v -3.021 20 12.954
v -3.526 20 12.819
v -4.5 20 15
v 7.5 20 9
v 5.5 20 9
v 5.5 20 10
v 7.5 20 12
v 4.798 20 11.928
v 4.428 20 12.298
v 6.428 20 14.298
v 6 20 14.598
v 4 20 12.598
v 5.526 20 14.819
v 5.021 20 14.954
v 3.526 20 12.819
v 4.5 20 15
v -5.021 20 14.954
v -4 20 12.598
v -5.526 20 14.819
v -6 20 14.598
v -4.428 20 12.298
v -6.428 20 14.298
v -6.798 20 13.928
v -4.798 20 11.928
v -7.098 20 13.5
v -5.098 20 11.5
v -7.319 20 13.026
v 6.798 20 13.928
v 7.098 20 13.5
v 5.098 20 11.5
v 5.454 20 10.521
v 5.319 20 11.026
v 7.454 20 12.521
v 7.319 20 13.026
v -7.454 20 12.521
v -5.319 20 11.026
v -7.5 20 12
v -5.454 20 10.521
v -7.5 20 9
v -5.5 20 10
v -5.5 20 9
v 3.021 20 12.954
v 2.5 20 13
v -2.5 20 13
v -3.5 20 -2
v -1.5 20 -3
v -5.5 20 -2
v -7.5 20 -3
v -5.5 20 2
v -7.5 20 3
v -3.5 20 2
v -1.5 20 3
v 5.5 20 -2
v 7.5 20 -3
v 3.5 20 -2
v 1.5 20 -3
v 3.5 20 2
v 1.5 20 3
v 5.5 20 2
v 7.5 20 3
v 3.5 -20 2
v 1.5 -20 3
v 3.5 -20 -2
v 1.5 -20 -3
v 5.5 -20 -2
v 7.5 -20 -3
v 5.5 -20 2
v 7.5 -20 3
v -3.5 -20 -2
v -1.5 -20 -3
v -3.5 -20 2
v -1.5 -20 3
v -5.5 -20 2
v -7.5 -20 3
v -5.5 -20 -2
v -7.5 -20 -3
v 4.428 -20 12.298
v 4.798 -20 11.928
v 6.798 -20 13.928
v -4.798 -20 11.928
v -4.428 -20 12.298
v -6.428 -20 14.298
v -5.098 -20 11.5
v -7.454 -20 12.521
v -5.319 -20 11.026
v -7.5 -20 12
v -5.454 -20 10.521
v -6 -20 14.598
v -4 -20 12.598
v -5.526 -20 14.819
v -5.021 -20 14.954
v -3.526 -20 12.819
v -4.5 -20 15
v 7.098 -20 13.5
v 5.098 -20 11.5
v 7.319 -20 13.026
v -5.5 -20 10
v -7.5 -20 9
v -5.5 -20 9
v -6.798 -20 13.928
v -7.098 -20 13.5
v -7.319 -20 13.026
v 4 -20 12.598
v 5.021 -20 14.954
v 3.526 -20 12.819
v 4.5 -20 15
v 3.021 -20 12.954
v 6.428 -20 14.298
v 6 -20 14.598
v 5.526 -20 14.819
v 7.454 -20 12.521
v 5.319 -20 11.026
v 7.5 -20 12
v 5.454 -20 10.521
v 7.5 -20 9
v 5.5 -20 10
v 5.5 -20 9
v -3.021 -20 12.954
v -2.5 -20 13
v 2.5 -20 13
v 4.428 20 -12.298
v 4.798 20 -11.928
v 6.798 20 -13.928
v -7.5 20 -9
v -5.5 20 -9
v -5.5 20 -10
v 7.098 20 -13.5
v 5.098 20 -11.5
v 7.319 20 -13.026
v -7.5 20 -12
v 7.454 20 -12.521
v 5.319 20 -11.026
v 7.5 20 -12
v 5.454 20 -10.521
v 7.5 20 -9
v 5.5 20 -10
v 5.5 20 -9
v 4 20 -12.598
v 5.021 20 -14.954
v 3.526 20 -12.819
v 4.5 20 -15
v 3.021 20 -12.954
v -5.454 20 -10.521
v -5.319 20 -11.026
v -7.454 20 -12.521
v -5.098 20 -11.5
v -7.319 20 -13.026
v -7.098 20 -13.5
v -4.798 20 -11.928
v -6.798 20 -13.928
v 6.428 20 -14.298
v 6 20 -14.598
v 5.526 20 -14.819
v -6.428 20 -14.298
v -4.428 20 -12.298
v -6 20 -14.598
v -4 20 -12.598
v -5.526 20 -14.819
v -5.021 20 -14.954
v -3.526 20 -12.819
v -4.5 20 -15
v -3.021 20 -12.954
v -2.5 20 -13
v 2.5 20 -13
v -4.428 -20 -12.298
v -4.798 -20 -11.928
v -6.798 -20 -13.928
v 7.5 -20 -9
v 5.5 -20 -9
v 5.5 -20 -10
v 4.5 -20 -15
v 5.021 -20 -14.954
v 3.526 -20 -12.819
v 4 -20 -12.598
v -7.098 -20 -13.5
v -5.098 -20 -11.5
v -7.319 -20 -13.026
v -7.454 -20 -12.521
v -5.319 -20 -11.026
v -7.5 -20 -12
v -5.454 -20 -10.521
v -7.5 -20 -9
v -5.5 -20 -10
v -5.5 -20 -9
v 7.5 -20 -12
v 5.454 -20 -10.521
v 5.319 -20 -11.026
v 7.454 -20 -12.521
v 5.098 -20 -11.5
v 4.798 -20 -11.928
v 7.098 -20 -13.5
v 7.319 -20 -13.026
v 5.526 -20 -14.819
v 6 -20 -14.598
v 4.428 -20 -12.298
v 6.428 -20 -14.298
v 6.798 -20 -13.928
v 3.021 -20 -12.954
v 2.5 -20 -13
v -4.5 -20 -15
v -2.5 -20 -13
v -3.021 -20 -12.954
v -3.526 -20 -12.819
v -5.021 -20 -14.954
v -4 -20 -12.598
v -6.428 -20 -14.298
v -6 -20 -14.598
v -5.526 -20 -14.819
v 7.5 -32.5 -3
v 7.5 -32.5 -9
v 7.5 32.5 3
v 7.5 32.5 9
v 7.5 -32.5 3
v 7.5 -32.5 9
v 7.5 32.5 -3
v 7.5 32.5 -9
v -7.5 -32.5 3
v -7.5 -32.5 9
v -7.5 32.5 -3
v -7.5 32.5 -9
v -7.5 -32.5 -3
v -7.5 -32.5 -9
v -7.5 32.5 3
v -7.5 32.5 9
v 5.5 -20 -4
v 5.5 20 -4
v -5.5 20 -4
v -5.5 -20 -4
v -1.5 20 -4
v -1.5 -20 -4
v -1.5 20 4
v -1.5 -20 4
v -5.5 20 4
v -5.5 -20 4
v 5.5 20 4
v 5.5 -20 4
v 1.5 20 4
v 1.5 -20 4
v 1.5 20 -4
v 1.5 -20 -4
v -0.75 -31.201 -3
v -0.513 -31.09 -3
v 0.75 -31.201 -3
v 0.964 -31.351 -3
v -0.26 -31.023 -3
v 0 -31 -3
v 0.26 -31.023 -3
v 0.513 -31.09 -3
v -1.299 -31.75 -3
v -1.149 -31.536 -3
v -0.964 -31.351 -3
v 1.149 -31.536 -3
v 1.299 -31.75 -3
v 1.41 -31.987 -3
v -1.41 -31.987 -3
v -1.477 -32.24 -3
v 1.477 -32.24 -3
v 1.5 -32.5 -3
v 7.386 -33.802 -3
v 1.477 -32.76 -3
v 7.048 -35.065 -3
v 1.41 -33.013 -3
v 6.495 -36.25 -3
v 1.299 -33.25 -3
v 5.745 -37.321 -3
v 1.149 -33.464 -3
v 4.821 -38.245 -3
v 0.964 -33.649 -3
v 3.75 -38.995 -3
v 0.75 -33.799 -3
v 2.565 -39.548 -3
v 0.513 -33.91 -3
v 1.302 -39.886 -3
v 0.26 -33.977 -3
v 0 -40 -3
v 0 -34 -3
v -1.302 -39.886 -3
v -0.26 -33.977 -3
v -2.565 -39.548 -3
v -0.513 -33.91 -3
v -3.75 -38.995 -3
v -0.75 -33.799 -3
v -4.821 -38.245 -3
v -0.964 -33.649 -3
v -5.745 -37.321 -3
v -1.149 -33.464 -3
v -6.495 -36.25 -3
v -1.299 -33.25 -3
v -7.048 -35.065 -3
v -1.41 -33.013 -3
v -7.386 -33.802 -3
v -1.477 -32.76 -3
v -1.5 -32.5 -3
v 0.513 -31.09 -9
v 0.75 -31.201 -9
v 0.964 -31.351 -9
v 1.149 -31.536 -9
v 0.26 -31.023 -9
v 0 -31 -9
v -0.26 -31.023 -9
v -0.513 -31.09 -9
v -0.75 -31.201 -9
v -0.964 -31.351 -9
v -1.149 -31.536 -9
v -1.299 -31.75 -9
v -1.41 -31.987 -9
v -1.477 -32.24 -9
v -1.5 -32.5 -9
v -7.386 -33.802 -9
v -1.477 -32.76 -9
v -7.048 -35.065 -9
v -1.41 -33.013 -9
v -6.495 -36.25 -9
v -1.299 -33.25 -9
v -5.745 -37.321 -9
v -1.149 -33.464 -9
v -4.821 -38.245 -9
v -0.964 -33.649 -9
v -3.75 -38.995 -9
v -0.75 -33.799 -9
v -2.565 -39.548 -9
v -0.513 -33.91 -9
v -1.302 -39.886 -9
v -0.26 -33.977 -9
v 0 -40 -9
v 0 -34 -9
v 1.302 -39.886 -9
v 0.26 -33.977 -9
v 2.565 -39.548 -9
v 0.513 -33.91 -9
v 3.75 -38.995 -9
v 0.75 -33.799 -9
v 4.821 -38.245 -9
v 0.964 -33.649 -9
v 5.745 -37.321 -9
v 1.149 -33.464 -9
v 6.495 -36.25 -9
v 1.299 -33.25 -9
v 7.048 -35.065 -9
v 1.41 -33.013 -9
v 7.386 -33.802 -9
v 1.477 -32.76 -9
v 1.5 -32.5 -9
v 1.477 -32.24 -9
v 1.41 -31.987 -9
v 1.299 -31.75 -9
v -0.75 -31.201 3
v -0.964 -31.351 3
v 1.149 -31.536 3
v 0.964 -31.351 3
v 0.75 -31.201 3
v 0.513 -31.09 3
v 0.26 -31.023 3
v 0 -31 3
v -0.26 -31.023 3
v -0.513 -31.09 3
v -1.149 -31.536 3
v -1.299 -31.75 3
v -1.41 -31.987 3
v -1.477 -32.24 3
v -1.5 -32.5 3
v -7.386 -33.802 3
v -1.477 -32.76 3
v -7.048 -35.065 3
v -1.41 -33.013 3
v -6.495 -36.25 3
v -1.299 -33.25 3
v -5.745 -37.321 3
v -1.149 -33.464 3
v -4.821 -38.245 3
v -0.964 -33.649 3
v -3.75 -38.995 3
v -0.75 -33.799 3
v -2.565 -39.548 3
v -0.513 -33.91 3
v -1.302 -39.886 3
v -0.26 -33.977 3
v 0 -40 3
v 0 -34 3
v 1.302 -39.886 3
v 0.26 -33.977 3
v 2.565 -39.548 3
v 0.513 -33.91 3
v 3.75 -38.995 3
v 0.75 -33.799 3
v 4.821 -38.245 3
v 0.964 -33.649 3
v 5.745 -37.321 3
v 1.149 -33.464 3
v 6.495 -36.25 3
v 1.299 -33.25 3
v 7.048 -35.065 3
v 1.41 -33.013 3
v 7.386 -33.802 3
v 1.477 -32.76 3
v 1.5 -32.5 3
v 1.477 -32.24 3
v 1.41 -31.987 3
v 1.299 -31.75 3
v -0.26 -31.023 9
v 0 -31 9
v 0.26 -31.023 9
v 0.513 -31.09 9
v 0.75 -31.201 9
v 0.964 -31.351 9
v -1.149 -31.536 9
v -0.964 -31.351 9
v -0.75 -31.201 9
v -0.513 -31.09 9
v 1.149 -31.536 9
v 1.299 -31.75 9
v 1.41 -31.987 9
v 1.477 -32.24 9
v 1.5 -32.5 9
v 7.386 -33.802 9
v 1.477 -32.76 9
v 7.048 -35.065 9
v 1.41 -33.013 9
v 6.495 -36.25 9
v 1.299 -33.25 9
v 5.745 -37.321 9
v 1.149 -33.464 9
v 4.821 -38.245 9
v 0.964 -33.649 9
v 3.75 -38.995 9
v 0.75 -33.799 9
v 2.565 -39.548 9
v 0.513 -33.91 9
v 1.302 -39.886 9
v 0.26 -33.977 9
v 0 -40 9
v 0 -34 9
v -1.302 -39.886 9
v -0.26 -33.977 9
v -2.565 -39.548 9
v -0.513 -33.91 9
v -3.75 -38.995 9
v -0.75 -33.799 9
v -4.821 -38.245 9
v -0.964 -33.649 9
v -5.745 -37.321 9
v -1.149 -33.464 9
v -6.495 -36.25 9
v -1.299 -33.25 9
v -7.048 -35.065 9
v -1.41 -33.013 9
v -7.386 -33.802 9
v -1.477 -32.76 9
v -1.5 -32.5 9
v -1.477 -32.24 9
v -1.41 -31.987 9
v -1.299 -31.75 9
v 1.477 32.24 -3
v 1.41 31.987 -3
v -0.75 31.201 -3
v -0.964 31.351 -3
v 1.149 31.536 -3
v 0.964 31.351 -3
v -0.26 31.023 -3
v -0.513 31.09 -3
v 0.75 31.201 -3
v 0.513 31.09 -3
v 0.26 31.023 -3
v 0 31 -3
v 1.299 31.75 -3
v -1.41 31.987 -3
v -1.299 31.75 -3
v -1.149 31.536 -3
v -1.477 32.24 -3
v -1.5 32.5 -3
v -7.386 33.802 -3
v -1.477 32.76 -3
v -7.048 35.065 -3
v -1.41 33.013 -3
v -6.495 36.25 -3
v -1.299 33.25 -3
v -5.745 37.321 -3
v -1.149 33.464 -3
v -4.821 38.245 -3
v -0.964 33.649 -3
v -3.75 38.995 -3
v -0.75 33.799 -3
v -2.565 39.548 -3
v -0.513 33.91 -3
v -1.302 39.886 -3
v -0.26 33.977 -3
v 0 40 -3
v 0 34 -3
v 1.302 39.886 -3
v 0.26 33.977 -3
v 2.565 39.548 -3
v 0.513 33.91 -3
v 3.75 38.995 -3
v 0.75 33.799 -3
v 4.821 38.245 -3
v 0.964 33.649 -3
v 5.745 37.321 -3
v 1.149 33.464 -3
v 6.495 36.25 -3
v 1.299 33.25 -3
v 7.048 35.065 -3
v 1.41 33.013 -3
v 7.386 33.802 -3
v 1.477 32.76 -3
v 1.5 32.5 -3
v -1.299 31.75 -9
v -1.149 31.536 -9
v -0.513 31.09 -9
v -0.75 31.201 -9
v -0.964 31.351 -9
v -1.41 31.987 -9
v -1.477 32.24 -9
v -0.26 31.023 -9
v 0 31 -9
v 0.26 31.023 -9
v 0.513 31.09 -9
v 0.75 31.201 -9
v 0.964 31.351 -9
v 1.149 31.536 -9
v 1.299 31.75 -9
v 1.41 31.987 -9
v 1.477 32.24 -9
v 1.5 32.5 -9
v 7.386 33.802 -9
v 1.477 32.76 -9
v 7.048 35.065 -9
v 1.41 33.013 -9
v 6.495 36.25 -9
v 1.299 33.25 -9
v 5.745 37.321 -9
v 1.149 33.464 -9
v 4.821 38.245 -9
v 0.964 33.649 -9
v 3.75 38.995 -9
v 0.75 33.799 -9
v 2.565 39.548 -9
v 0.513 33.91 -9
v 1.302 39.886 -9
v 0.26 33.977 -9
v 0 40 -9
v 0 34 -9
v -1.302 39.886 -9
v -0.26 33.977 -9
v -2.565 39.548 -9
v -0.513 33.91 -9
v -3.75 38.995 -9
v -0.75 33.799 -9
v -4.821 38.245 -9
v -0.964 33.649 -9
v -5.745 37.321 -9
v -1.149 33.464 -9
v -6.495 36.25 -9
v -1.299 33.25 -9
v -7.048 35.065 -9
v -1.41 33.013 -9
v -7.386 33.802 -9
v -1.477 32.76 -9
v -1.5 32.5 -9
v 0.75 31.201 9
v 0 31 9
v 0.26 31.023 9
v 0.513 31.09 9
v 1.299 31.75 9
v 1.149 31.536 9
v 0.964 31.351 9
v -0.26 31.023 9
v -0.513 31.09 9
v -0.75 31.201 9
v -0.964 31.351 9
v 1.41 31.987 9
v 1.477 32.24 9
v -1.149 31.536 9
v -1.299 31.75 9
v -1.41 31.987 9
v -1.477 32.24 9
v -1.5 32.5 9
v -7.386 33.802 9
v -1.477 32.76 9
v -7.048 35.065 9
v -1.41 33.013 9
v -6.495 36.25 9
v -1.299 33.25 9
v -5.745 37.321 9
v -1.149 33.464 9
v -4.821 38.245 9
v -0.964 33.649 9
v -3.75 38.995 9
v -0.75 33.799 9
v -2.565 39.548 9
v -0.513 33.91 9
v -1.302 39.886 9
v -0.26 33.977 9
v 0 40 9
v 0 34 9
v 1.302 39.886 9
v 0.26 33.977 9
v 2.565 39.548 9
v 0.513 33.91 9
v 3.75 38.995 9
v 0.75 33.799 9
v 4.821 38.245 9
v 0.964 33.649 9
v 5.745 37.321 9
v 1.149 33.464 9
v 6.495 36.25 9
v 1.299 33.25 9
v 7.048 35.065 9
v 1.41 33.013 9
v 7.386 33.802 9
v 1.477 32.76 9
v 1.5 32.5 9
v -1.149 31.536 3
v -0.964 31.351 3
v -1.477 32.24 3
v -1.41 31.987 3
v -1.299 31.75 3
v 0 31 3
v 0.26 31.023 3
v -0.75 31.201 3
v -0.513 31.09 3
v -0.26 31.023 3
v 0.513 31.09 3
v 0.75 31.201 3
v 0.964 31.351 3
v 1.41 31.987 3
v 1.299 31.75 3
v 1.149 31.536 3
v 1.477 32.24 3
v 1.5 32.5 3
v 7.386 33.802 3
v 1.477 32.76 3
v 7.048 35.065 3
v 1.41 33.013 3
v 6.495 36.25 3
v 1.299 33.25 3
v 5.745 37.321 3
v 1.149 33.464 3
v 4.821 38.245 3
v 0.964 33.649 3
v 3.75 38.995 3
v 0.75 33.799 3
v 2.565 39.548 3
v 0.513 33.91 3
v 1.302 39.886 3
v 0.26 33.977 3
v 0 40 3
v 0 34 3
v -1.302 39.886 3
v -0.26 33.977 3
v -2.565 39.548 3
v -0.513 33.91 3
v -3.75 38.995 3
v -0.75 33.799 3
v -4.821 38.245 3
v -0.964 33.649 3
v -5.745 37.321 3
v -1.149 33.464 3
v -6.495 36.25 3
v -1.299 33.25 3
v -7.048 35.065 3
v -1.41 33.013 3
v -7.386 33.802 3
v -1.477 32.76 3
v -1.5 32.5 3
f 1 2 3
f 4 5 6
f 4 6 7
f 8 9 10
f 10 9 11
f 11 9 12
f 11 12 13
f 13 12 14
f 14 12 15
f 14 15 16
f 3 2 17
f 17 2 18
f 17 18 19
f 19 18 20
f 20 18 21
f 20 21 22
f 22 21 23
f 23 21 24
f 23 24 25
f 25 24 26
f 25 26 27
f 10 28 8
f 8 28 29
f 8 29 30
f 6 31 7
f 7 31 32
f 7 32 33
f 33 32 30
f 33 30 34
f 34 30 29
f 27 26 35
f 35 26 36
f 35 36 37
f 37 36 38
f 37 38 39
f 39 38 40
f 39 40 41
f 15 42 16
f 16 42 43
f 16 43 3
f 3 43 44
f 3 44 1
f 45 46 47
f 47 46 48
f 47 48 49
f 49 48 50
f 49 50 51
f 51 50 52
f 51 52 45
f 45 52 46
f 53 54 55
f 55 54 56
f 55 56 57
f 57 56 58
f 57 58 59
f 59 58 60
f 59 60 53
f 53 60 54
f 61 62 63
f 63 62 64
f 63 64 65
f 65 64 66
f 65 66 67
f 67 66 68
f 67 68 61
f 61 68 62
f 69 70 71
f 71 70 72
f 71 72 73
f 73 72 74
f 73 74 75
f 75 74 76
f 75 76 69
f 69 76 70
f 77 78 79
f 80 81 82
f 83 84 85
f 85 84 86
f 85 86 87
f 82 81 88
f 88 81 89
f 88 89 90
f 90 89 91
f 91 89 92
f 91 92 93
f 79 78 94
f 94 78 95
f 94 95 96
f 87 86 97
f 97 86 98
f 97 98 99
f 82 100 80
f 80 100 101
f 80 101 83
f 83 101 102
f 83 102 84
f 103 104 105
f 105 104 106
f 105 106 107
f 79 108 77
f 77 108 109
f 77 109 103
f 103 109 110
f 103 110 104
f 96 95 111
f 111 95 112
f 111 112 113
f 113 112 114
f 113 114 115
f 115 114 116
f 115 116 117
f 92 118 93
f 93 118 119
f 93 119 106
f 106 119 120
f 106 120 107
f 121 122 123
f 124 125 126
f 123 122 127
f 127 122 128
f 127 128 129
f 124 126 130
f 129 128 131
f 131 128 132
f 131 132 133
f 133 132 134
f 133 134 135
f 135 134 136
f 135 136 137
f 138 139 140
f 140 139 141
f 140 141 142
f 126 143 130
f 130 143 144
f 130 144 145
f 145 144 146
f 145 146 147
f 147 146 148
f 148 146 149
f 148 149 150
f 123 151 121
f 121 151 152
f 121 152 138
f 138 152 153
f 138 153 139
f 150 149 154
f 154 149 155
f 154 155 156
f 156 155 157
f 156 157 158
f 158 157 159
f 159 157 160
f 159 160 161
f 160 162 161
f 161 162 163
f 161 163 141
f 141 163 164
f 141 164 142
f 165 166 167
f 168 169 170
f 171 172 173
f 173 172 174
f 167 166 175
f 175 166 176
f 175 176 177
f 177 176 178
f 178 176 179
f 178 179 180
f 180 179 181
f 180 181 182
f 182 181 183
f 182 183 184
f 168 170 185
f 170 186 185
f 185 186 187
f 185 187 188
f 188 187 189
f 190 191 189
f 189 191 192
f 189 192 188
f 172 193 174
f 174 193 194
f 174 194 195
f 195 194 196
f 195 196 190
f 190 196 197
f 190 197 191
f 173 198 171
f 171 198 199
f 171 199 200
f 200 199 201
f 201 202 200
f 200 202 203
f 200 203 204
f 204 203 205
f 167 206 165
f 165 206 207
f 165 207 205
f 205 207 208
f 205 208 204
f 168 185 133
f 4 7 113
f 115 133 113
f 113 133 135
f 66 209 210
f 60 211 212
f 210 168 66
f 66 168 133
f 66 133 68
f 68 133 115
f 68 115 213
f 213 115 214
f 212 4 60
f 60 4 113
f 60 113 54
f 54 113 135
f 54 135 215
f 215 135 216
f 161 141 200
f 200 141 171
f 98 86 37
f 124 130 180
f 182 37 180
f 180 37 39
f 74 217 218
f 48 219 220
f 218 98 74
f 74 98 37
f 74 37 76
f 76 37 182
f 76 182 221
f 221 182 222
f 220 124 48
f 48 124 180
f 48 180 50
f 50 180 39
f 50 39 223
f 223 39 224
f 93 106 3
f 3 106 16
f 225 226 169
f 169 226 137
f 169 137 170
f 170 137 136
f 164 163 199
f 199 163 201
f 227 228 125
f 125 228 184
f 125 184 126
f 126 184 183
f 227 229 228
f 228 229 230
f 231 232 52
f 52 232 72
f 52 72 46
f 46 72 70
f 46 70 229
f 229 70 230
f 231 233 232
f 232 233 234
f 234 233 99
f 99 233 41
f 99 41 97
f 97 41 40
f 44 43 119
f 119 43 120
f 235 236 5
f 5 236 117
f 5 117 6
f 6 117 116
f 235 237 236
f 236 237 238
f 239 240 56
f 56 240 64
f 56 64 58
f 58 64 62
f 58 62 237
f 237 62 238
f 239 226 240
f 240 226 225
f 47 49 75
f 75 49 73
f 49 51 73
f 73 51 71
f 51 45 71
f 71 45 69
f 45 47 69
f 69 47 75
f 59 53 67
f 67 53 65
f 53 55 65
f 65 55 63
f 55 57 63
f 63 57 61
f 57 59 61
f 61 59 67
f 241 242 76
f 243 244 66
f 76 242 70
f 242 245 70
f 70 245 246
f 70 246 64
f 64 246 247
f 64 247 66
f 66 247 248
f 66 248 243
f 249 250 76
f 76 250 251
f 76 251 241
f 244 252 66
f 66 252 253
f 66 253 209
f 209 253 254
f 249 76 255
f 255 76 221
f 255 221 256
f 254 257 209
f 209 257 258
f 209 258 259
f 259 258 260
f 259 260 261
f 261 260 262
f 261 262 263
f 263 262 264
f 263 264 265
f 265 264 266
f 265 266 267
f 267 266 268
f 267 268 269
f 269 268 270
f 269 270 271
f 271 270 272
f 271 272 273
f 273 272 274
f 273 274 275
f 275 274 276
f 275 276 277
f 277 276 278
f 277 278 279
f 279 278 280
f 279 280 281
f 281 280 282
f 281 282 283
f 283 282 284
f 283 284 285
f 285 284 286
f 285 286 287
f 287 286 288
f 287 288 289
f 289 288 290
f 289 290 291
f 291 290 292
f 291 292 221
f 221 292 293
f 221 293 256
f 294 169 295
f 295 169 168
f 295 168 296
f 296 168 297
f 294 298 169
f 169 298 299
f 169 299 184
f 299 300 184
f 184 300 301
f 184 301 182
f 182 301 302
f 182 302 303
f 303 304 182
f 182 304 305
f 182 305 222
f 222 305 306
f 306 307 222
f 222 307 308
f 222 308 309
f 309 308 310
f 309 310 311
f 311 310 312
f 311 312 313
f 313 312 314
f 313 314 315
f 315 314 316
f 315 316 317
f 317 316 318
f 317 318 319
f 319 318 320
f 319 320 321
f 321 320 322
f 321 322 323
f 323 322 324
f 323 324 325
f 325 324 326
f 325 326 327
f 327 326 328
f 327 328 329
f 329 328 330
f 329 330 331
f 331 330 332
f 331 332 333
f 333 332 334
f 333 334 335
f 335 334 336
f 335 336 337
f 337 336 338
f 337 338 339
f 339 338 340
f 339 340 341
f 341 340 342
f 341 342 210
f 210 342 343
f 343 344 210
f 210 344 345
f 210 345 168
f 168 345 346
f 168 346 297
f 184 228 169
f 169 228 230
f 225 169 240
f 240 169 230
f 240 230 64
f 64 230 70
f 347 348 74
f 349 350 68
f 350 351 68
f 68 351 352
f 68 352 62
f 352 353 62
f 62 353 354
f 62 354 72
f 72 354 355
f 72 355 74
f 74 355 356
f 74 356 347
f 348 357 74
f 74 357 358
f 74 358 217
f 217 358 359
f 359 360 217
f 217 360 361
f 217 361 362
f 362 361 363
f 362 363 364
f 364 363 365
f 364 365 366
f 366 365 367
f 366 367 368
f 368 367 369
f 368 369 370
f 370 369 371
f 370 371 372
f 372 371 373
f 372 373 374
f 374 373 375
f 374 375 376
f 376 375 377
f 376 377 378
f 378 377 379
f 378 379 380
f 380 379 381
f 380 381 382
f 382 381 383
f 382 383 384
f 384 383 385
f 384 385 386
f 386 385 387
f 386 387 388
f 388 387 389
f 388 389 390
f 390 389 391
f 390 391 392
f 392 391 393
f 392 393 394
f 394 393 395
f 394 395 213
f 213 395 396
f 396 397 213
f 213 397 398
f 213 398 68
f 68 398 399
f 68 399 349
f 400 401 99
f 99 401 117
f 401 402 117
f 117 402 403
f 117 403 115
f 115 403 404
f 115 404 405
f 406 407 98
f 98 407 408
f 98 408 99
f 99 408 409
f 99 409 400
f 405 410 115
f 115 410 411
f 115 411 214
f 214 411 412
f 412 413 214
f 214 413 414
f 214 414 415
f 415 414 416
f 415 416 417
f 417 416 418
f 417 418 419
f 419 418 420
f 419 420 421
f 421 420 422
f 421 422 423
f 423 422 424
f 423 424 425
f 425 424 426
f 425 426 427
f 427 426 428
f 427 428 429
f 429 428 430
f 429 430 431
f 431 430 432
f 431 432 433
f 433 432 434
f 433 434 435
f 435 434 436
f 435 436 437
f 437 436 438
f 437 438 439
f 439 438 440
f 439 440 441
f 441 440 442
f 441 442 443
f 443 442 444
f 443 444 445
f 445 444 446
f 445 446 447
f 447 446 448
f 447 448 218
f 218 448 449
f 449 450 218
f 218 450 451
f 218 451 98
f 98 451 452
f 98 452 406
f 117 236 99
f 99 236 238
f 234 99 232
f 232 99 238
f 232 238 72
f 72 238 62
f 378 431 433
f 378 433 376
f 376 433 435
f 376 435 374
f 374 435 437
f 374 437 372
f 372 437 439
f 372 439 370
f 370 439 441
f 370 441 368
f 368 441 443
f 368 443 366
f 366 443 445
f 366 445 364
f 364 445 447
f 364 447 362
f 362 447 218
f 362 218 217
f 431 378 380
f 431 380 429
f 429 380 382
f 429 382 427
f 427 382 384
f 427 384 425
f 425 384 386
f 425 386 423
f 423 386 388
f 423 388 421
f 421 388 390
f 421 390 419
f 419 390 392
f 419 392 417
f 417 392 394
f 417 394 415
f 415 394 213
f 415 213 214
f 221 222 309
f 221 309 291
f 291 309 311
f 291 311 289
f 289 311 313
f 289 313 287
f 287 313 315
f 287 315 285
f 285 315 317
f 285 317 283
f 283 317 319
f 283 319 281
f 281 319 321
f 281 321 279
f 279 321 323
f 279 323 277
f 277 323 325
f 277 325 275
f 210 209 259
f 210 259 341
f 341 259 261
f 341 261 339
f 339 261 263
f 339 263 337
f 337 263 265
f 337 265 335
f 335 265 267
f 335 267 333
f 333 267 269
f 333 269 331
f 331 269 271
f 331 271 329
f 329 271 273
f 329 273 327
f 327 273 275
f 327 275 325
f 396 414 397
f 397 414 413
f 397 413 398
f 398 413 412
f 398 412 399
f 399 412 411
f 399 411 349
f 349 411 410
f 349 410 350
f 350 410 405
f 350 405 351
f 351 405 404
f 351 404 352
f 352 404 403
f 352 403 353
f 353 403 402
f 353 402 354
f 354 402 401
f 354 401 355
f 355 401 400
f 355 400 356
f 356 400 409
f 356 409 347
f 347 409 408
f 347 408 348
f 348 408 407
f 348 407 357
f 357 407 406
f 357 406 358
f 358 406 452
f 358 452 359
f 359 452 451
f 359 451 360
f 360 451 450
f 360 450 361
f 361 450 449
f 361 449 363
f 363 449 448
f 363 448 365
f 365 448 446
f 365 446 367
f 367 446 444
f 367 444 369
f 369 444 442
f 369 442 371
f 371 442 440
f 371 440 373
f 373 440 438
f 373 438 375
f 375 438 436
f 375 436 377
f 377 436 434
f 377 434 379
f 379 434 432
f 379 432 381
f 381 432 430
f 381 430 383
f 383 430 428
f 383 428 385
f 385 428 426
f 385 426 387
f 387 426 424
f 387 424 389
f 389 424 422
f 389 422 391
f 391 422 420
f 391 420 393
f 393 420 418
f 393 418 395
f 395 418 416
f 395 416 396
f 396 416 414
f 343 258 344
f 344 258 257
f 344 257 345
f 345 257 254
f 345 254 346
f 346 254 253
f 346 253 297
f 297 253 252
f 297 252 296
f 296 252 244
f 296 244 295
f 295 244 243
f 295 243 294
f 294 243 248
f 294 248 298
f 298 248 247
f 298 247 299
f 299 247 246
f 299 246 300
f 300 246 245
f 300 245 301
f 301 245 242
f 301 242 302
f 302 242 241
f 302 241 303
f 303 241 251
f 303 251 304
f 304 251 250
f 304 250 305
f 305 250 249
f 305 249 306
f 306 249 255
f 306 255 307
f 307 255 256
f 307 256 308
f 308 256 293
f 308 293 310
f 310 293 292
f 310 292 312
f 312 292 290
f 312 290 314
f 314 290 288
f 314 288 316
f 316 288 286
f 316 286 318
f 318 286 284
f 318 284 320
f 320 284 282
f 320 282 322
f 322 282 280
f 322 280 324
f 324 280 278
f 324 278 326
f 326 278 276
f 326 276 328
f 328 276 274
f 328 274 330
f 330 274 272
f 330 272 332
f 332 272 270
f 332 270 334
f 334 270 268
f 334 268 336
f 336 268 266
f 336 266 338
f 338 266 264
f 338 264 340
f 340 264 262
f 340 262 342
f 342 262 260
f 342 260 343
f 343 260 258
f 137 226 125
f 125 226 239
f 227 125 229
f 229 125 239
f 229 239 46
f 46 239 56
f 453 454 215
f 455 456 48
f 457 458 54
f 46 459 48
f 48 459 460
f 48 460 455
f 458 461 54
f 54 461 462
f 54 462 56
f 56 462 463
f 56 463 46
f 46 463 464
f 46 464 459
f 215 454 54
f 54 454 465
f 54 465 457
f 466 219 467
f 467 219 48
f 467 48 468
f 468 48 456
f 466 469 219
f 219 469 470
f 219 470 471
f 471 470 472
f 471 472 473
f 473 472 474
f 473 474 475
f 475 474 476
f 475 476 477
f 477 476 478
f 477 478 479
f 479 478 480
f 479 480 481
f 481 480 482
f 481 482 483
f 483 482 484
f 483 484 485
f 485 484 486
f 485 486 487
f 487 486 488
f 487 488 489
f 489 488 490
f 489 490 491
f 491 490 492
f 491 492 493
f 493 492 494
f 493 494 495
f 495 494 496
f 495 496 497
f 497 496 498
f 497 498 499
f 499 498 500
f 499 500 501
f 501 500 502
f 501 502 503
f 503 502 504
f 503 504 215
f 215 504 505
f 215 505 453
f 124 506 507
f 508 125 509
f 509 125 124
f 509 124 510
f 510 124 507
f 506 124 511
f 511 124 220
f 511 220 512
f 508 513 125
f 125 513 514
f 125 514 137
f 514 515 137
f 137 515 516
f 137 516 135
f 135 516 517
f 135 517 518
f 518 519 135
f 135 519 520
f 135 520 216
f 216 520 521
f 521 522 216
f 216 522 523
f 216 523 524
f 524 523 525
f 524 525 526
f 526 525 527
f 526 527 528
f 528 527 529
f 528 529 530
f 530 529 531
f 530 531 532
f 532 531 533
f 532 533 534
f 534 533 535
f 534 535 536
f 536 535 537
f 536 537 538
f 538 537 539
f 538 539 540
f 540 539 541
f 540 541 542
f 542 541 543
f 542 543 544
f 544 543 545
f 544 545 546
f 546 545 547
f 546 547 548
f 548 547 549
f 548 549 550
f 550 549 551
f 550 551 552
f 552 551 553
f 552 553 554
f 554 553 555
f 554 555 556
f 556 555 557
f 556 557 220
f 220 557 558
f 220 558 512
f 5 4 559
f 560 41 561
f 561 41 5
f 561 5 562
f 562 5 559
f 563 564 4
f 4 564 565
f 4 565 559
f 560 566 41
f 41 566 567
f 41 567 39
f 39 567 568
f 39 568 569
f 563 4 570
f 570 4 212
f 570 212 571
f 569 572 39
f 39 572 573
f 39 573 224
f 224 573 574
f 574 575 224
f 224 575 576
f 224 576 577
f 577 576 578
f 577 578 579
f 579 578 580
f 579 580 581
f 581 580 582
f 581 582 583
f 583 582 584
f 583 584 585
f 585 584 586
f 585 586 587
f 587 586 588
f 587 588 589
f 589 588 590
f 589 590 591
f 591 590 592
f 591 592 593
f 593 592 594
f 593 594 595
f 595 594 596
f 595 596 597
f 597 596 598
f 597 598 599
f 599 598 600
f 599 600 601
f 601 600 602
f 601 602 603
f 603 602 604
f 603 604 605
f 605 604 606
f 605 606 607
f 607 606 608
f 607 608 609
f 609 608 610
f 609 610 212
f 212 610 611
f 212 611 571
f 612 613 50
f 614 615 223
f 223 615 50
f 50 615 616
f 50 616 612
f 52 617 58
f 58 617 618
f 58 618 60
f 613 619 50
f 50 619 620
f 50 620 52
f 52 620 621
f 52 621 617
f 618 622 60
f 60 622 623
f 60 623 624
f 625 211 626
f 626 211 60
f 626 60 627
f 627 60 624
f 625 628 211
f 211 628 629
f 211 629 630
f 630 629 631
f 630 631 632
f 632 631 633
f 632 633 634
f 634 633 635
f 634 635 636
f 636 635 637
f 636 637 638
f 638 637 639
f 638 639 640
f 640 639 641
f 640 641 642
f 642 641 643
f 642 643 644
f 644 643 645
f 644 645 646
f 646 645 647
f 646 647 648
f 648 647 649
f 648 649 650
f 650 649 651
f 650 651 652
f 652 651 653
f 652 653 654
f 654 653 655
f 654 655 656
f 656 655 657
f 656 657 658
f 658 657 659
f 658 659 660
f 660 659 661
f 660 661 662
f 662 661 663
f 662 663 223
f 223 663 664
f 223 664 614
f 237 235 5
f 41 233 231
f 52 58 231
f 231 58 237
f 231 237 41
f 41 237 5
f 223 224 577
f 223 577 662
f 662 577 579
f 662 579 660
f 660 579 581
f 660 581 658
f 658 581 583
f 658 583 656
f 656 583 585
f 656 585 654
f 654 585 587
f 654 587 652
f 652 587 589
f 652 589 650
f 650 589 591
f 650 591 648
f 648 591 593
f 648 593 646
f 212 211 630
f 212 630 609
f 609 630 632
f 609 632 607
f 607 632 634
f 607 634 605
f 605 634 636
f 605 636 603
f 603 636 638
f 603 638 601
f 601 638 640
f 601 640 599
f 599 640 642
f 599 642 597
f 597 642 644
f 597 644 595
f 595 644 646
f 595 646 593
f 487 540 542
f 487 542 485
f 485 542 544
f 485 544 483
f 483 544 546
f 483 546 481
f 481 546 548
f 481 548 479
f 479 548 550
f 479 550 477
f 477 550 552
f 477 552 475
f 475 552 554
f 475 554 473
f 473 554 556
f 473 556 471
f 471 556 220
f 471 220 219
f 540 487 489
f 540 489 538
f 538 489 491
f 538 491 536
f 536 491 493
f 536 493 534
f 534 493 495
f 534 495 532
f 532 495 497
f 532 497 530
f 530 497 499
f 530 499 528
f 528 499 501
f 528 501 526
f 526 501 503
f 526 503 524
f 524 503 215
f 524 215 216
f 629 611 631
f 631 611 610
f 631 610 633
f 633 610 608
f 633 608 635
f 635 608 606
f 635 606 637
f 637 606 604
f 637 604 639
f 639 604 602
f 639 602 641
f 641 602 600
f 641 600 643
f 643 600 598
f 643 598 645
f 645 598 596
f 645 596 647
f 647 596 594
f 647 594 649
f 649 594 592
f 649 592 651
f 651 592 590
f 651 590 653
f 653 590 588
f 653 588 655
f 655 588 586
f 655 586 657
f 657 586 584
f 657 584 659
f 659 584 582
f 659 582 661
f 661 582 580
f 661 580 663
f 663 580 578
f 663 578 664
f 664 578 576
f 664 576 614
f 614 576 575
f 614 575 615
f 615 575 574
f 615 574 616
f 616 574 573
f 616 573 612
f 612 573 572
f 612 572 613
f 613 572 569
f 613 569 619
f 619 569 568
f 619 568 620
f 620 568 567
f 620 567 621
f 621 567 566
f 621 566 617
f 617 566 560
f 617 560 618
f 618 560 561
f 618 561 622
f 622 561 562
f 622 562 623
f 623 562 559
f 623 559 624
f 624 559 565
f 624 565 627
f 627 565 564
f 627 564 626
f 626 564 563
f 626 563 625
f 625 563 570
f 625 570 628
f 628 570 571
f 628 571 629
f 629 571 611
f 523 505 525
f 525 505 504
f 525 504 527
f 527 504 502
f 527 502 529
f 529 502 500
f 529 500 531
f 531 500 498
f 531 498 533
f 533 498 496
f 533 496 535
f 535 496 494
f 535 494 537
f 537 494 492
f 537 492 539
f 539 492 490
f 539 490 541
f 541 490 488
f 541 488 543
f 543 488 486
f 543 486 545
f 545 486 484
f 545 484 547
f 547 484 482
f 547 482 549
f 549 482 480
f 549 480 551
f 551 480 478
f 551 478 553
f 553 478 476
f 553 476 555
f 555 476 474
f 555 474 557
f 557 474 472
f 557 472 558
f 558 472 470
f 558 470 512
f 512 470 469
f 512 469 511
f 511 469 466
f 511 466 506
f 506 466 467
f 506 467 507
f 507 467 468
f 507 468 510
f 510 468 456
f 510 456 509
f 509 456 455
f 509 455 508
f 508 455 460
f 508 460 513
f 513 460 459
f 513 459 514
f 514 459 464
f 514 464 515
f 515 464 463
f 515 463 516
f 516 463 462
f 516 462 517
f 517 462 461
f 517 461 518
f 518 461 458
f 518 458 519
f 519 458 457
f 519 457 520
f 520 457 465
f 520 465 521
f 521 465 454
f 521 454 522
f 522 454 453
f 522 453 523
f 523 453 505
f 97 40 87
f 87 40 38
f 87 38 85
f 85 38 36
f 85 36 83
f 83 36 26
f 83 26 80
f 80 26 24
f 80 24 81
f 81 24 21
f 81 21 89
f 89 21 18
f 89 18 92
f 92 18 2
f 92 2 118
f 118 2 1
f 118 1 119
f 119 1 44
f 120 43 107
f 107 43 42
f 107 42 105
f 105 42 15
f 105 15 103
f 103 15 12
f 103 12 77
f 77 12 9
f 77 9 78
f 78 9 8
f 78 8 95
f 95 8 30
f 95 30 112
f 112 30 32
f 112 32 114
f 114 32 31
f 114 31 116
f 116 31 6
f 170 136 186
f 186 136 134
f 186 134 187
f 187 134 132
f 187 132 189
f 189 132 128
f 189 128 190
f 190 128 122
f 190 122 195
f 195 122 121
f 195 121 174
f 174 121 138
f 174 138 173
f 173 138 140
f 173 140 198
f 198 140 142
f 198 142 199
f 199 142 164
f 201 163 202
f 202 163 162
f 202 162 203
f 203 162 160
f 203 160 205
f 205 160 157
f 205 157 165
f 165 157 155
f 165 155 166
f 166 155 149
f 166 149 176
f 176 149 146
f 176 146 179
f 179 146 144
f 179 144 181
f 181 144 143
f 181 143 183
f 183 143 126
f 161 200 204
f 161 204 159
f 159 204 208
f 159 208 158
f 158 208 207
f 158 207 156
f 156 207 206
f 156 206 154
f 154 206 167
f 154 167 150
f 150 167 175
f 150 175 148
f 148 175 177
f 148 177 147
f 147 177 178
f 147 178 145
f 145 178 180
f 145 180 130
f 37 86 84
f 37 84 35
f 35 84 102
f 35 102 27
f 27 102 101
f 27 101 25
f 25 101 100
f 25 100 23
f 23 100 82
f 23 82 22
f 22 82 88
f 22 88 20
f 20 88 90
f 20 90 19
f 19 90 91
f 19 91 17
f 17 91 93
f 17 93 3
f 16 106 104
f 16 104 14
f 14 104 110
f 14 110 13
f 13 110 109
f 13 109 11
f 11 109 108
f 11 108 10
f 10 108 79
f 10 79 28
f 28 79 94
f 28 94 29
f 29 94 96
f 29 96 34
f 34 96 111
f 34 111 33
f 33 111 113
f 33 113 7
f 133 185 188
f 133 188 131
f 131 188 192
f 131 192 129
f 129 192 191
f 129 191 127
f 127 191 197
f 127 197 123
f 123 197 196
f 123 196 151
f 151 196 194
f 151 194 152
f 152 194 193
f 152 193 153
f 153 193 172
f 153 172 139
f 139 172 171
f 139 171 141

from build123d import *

# Parameters (mm, degrees)
BOSS_EXTRUDE1_START  = -20
SKETCH1_W            = 15
SKETCH1_H            = 30
SKETCH1_W_2          = 2
SKETCH1_H_2          = 4
BOSS_EXTRUDE1_DEPTH  = 40
SKETCH2_W            = 15
SKETCH2_H            = 6
BOSS_EXTRUDE2_DEPTH  = 20
FILLET1_R            = 7.5
SKETCH3_R            = 1.5
CUT_EXTRUDE1_DEPTH   = 48.246693006
FILLET1_OF_MIRROR1_R = 7.5
FILLET2_R            = 3


with BuildPart() as part:
    # Sketch1 → Boss-Extrude1 (new body)
    with BuildSketch(Plane(origin=(0, 0, 0), x_dir=(1, 0, 0), z_dir=(0, 1, 0)).offset(BOSS_EXTRUDE1_START)):
        Rectangle(SKETCH1_W, SKETCH1_H)
        Polygon((-5.5, -13), (5.5, -13), (5.5, -4), (1.5, -4), (1.5, 4), (5.5, 4), (5.5, 13), (-5.5, 13), (-5.5, 4), (-1.5, 4), (-1.5, -4), (-5.5, -4), align=None, mode=Mode.SUBTRACT)
        with Locations((-4.5, 0)):
            Rectangle(SKETCH1_W_2, SKETCH1_H_2, mode=Mode.SUBTRACT)
        with Locations((4.5, 0)):
            Rectangle(SKETCH1_W_2, SKETCH1_H_2, mode=Mode.SUBTRACT)
    extrude(amount=BOSS_EXTRUDE1_DEPTH)

    # Sketch2 → Boss-Extrude2 (add)
    with BuildSketch(Plane.XZ.offset(20)):
        with Locations((0, 6)):
            Rectangle(SKETCH2_W, SKETCH2_H)
        with Locations((0, -6)):
            Rectangle(SKETCH2_W, SKETCH2_H)
    boss_extrude2 = extrude(amount=BOSS_EXTRUDE2_DEPTH)

    # Fillet1
    fillet1_edges = [part.edges().sort_by_distance(p)[0] for p in [
        (7.5, -40, 6),
        (7.5, -40, -6),
        (-7.5, -40, 6),
        (-7.5, -40, -6),
    ]]
    fillet(fillet1_edges, radius=FILLET1_R - 0.0001)  # a hair under: the kernel refuses the full size

    # Sketch3 → Cut-Extrude1 (cut, through all)
    with BuildSketch(Plane.XY.offset(9)):
        with Locations((0, -32.5)):
            Circle(SKETCH3_R)
    cut_extrude1 = extrude(amount=-CUT_EXTRUDE1_DEPTH, mode=Mode.SUBTRACT)

    # Mirror1: Boss-Extrude2, Cut-Extrude1 across plane
    add(boss_extrude2.mirror(Plane.ZX))
    add(cut_extrude1.mirror(Plane.ZX), mode=Mode.SUBTRACT)

    # Fillet1 of Mirror1
    fillet1_of_mirror1_edges = [part.edges().sort_by_distance(p)[0] for p in [
        (7.5, 40, 6),
        (7.5, 40, -6),
        (-7.5, 40, 6),
        (-7.5, 40, -6),
    ]]
    fillet(fillet1_of_mirror1_edges, radius=FILLET1_OF_MIRROR1_R - 0.0001)  # a hair under: the kernel refuses the full size

    # Fillet2
    fillet2_edges = [part.edges().sort_by_distance(p)[0] for p in [
        (5.5, 0, -13),
        (-5.5, 0, -13),
        (-5.5, 0, 13),
        (5.5, 0, 13),
        (7.5, 0, 15),
        (-7.5, 0, 15),
        (-7.5, 0, -15),
        (7.5, 0, -15),
    ]]
    fillet(fillet2_edges, radius=FILLET2_R)


solid = part.part
